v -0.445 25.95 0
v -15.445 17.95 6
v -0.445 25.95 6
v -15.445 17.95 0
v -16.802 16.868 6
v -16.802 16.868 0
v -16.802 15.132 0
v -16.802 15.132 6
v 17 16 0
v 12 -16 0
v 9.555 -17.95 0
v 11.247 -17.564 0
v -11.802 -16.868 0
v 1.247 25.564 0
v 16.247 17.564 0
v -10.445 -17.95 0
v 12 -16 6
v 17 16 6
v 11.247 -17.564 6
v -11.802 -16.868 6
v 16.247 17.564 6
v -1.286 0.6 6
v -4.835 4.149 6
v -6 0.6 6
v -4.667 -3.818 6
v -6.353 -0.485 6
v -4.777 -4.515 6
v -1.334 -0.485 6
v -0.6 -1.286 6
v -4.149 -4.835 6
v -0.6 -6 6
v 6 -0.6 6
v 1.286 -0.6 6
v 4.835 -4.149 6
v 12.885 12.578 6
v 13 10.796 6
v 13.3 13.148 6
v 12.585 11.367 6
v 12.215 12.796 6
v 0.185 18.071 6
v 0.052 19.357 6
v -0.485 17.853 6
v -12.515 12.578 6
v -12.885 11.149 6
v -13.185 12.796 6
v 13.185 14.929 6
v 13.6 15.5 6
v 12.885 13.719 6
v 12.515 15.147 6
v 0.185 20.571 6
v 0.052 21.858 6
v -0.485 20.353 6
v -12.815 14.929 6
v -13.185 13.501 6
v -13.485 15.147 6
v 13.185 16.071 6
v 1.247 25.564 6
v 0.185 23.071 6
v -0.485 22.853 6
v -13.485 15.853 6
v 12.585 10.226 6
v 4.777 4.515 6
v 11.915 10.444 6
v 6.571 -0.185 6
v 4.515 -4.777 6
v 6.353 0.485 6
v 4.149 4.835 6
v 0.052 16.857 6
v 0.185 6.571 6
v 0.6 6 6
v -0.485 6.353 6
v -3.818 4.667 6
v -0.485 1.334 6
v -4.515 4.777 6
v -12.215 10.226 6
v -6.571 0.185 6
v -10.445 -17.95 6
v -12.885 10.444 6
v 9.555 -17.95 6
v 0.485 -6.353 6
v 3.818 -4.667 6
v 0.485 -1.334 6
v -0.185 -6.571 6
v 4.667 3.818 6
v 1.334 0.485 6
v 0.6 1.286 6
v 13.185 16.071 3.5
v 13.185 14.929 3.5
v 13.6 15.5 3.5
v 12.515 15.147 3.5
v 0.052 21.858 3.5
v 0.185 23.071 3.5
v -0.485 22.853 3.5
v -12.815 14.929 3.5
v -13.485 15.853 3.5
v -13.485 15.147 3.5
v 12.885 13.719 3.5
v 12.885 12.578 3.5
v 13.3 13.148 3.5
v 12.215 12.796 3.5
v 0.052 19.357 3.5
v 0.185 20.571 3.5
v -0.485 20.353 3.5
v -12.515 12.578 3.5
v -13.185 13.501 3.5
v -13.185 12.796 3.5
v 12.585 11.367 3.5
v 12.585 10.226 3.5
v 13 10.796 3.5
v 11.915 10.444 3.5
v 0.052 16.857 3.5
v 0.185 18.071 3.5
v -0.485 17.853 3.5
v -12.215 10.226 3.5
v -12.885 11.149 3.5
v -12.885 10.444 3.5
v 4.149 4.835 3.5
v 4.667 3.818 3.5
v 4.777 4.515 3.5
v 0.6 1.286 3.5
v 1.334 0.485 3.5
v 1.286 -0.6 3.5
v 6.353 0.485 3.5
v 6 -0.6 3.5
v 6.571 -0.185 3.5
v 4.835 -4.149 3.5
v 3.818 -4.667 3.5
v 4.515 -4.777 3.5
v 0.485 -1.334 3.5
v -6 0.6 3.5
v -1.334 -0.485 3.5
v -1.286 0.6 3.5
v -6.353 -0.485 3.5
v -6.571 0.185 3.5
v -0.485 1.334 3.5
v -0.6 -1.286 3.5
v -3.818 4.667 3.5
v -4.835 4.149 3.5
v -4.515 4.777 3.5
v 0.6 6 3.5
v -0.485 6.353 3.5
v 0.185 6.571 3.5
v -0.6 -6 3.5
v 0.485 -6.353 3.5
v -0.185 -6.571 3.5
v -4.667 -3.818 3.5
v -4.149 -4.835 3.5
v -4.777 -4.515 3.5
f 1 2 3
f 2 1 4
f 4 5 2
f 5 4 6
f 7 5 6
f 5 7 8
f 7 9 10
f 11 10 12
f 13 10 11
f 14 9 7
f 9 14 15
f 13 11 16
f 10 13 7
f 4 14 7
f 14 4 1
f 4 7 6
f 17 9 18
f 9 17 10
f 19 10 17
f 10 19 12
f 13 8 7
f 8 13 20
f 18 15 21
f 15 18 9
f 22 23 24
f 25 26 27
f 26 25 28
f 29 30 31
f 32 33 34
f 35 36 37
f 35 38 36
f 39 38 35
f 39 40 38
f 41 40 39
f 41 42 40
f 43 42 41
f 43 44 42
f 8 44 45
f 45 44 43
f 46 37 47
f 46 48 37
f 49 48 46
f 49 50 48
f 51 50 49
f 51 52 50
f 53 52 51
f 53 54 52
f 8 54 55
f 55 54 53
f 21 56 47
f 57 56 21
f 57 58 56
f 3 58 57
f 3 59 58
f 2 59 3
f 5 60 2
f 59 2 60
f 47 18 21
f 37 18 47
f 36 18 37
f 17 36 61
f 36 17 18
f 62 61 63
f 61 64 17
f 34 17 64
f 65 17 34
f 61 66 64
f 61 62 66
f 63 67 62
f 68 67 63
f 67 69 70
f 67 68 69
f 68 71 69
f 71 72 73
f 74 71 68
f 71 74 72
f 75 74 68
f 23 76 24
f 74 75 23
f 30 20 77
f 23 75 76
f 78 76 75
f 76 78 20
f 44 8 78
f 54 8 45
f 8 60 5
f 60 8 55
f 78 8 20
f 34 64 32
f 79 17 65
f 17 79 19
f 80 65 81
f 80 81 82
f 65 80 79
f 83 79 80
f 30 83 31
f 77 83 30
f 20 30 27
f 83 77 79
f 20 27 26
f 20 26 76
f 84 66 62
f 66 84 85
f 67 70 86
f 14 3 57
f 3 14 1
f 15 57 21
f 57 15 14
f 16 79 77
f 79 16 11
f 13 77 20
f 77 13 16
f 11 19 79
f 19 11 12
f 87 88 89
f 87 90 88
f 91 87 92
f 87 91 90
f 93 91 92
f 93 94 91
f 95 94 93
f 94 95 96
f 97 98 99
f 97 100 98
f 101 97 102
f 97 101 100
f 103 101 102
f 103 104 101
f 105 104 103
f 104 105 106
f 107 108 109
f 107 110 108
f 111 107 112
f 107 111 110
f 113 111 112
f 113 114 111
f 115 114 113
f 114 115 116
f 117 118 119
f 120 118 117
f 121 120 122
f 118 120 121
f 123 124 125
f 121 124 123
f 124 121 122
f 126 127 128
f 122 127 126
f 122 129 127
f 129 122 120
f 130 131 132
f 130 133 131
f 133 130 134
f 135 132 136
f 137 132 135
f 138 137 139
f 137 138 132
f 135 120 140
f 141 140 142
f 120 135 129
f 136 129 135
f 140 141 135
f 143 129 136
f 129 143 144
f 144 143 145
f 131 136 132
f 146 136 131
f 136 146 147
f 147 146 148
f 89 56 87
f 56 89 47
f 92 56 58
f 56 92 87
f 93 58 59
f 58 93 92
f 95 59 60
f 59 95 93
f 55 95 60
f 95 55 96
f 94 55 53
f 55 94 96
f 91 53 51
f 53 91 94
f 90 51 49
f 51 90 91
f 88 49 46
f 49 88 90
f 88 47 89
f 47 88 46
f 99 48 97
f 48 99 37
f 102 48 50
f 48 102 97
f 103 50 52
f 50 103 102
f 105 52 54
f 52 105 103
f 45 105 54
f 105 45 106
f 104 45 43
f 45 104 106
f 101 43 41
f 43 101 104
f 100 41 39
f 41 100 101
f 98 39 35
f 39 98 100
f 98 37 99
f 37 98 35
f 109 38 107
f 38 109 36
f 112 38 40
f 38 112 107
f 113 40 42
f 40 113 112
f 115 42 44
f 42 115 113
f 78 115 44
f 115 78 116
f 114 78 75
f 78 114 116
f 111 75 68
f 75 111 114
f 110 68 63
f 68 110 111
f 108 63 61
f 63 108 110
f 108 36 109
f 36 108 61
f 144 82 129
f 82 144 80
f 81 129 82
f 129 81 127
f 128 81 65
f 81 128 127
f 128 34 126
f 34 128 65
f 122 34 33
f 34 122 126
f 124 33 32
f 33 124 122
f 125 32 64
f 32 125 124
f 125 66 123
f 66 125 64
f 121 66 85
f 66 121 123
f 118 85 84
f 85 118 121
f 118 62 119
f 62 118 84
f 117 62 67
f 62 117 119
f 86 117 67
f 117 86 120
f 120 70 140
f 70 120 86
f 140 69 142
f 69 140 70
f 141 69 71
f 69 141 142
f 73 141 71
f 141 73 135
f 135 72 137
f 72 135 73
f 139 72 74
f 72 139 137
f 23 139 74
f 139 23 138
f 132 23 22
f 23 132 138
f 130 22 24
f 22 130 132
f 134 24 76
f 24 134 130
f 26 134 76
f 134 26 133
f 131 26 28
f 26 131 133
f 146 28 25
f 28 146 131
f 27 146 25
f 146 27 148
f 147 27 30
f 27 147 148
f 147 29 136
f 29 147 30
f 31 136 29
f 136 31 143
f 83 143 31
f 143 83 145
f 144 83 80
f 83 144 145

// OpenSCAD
// file: moves/step.scad
module shogi_move_step(edges=[0], length=6, thick=0.6) {
    for (a=edges) {
        rotate(a=a*45) hull() {
            circle(thick);
            translate([0, length, 0]) circle(thick);
        }
    }
}
// file: ranks/rank3.scad
module shogi_rank_3(thick=0.6) {
    hull() {
        translate([-12.4, 10.796364, 0]) circle(thick);
        translate([0, 17.5, 0]) circle(thick);
    }

    hull() {
        translate([0, 17.5, 0]) circle(thick);
        translate([12.4, 10.796364, 0]) circle(thick);
    }
}
// file: ranks/rank2.scad
module shogi_rank_2(thick=0.6) {
    hull() {
        translate([-12.7, 13.148182, 0]) circle(thick);
        translate([0, 20, 0]) circle(thick);
    }

    hull() {
        translate([0, 20, 0]) circle(thick);
        translate([12.7, 13.148182, 0]) circle(thick);
    }
}
// file: ranks/rank1.scad
module shogi_rank_1(thick=0.6) {
    hull() {
        translate([-13, 15.5, 0]) circle(thick);
        translate([0, 22.5, 0]) circle(thick);
    }

    hull() {
        translate([0, 22.5, 0]) circle(thick);
        translate([13, 15.5, 0]) circle(thick);
    }
}
// file: koma/slim.scad
module shogi_koma_slim(width=30, length=40, rounding=2) {
    points=[
        [width/6 , 0],
        [0, length*0.8],
        [width/2, length],
        [width, length*0.8],
        [5*width/6, 0]
    ];

    minkowski() {
        polygon(points);
        circle(rounding);
    }
}
// file: base/piece.scad
module shogi_piece(thick=6) {
    unit=thick/12;

    difference() {
        translate([-15, -16, 0])
        linear_extrude(thick) children(0);
        translate([0, 0, -1*unit]) linear_extrude(6*unit) children(1);
        translate([0, 0, 7*unit]) linear_extrude(6*unit) children(2);
        translate([0, 0, 9*unit]) linear_extrude(6*unit) children(3);
    }
}
// main file
use <base/piece.scad>;
use <koma/slim.scad>;
use <ranks/rank1.scad>;
use <ranks/rank2.scad>;
use <ranks/rank3.scad>;
use <moves/step.scad>;

shogi_piece() {
    shogi_koma_slim();
    union() {}
    union() {
        shogi_rank_1();
        shogi_rank_2();
        shogi_rank_3();
        shogi_move_step(edges=[0, 1, 2, 3, 4, 5, 6, 7]);
    }
    union() {}
}
